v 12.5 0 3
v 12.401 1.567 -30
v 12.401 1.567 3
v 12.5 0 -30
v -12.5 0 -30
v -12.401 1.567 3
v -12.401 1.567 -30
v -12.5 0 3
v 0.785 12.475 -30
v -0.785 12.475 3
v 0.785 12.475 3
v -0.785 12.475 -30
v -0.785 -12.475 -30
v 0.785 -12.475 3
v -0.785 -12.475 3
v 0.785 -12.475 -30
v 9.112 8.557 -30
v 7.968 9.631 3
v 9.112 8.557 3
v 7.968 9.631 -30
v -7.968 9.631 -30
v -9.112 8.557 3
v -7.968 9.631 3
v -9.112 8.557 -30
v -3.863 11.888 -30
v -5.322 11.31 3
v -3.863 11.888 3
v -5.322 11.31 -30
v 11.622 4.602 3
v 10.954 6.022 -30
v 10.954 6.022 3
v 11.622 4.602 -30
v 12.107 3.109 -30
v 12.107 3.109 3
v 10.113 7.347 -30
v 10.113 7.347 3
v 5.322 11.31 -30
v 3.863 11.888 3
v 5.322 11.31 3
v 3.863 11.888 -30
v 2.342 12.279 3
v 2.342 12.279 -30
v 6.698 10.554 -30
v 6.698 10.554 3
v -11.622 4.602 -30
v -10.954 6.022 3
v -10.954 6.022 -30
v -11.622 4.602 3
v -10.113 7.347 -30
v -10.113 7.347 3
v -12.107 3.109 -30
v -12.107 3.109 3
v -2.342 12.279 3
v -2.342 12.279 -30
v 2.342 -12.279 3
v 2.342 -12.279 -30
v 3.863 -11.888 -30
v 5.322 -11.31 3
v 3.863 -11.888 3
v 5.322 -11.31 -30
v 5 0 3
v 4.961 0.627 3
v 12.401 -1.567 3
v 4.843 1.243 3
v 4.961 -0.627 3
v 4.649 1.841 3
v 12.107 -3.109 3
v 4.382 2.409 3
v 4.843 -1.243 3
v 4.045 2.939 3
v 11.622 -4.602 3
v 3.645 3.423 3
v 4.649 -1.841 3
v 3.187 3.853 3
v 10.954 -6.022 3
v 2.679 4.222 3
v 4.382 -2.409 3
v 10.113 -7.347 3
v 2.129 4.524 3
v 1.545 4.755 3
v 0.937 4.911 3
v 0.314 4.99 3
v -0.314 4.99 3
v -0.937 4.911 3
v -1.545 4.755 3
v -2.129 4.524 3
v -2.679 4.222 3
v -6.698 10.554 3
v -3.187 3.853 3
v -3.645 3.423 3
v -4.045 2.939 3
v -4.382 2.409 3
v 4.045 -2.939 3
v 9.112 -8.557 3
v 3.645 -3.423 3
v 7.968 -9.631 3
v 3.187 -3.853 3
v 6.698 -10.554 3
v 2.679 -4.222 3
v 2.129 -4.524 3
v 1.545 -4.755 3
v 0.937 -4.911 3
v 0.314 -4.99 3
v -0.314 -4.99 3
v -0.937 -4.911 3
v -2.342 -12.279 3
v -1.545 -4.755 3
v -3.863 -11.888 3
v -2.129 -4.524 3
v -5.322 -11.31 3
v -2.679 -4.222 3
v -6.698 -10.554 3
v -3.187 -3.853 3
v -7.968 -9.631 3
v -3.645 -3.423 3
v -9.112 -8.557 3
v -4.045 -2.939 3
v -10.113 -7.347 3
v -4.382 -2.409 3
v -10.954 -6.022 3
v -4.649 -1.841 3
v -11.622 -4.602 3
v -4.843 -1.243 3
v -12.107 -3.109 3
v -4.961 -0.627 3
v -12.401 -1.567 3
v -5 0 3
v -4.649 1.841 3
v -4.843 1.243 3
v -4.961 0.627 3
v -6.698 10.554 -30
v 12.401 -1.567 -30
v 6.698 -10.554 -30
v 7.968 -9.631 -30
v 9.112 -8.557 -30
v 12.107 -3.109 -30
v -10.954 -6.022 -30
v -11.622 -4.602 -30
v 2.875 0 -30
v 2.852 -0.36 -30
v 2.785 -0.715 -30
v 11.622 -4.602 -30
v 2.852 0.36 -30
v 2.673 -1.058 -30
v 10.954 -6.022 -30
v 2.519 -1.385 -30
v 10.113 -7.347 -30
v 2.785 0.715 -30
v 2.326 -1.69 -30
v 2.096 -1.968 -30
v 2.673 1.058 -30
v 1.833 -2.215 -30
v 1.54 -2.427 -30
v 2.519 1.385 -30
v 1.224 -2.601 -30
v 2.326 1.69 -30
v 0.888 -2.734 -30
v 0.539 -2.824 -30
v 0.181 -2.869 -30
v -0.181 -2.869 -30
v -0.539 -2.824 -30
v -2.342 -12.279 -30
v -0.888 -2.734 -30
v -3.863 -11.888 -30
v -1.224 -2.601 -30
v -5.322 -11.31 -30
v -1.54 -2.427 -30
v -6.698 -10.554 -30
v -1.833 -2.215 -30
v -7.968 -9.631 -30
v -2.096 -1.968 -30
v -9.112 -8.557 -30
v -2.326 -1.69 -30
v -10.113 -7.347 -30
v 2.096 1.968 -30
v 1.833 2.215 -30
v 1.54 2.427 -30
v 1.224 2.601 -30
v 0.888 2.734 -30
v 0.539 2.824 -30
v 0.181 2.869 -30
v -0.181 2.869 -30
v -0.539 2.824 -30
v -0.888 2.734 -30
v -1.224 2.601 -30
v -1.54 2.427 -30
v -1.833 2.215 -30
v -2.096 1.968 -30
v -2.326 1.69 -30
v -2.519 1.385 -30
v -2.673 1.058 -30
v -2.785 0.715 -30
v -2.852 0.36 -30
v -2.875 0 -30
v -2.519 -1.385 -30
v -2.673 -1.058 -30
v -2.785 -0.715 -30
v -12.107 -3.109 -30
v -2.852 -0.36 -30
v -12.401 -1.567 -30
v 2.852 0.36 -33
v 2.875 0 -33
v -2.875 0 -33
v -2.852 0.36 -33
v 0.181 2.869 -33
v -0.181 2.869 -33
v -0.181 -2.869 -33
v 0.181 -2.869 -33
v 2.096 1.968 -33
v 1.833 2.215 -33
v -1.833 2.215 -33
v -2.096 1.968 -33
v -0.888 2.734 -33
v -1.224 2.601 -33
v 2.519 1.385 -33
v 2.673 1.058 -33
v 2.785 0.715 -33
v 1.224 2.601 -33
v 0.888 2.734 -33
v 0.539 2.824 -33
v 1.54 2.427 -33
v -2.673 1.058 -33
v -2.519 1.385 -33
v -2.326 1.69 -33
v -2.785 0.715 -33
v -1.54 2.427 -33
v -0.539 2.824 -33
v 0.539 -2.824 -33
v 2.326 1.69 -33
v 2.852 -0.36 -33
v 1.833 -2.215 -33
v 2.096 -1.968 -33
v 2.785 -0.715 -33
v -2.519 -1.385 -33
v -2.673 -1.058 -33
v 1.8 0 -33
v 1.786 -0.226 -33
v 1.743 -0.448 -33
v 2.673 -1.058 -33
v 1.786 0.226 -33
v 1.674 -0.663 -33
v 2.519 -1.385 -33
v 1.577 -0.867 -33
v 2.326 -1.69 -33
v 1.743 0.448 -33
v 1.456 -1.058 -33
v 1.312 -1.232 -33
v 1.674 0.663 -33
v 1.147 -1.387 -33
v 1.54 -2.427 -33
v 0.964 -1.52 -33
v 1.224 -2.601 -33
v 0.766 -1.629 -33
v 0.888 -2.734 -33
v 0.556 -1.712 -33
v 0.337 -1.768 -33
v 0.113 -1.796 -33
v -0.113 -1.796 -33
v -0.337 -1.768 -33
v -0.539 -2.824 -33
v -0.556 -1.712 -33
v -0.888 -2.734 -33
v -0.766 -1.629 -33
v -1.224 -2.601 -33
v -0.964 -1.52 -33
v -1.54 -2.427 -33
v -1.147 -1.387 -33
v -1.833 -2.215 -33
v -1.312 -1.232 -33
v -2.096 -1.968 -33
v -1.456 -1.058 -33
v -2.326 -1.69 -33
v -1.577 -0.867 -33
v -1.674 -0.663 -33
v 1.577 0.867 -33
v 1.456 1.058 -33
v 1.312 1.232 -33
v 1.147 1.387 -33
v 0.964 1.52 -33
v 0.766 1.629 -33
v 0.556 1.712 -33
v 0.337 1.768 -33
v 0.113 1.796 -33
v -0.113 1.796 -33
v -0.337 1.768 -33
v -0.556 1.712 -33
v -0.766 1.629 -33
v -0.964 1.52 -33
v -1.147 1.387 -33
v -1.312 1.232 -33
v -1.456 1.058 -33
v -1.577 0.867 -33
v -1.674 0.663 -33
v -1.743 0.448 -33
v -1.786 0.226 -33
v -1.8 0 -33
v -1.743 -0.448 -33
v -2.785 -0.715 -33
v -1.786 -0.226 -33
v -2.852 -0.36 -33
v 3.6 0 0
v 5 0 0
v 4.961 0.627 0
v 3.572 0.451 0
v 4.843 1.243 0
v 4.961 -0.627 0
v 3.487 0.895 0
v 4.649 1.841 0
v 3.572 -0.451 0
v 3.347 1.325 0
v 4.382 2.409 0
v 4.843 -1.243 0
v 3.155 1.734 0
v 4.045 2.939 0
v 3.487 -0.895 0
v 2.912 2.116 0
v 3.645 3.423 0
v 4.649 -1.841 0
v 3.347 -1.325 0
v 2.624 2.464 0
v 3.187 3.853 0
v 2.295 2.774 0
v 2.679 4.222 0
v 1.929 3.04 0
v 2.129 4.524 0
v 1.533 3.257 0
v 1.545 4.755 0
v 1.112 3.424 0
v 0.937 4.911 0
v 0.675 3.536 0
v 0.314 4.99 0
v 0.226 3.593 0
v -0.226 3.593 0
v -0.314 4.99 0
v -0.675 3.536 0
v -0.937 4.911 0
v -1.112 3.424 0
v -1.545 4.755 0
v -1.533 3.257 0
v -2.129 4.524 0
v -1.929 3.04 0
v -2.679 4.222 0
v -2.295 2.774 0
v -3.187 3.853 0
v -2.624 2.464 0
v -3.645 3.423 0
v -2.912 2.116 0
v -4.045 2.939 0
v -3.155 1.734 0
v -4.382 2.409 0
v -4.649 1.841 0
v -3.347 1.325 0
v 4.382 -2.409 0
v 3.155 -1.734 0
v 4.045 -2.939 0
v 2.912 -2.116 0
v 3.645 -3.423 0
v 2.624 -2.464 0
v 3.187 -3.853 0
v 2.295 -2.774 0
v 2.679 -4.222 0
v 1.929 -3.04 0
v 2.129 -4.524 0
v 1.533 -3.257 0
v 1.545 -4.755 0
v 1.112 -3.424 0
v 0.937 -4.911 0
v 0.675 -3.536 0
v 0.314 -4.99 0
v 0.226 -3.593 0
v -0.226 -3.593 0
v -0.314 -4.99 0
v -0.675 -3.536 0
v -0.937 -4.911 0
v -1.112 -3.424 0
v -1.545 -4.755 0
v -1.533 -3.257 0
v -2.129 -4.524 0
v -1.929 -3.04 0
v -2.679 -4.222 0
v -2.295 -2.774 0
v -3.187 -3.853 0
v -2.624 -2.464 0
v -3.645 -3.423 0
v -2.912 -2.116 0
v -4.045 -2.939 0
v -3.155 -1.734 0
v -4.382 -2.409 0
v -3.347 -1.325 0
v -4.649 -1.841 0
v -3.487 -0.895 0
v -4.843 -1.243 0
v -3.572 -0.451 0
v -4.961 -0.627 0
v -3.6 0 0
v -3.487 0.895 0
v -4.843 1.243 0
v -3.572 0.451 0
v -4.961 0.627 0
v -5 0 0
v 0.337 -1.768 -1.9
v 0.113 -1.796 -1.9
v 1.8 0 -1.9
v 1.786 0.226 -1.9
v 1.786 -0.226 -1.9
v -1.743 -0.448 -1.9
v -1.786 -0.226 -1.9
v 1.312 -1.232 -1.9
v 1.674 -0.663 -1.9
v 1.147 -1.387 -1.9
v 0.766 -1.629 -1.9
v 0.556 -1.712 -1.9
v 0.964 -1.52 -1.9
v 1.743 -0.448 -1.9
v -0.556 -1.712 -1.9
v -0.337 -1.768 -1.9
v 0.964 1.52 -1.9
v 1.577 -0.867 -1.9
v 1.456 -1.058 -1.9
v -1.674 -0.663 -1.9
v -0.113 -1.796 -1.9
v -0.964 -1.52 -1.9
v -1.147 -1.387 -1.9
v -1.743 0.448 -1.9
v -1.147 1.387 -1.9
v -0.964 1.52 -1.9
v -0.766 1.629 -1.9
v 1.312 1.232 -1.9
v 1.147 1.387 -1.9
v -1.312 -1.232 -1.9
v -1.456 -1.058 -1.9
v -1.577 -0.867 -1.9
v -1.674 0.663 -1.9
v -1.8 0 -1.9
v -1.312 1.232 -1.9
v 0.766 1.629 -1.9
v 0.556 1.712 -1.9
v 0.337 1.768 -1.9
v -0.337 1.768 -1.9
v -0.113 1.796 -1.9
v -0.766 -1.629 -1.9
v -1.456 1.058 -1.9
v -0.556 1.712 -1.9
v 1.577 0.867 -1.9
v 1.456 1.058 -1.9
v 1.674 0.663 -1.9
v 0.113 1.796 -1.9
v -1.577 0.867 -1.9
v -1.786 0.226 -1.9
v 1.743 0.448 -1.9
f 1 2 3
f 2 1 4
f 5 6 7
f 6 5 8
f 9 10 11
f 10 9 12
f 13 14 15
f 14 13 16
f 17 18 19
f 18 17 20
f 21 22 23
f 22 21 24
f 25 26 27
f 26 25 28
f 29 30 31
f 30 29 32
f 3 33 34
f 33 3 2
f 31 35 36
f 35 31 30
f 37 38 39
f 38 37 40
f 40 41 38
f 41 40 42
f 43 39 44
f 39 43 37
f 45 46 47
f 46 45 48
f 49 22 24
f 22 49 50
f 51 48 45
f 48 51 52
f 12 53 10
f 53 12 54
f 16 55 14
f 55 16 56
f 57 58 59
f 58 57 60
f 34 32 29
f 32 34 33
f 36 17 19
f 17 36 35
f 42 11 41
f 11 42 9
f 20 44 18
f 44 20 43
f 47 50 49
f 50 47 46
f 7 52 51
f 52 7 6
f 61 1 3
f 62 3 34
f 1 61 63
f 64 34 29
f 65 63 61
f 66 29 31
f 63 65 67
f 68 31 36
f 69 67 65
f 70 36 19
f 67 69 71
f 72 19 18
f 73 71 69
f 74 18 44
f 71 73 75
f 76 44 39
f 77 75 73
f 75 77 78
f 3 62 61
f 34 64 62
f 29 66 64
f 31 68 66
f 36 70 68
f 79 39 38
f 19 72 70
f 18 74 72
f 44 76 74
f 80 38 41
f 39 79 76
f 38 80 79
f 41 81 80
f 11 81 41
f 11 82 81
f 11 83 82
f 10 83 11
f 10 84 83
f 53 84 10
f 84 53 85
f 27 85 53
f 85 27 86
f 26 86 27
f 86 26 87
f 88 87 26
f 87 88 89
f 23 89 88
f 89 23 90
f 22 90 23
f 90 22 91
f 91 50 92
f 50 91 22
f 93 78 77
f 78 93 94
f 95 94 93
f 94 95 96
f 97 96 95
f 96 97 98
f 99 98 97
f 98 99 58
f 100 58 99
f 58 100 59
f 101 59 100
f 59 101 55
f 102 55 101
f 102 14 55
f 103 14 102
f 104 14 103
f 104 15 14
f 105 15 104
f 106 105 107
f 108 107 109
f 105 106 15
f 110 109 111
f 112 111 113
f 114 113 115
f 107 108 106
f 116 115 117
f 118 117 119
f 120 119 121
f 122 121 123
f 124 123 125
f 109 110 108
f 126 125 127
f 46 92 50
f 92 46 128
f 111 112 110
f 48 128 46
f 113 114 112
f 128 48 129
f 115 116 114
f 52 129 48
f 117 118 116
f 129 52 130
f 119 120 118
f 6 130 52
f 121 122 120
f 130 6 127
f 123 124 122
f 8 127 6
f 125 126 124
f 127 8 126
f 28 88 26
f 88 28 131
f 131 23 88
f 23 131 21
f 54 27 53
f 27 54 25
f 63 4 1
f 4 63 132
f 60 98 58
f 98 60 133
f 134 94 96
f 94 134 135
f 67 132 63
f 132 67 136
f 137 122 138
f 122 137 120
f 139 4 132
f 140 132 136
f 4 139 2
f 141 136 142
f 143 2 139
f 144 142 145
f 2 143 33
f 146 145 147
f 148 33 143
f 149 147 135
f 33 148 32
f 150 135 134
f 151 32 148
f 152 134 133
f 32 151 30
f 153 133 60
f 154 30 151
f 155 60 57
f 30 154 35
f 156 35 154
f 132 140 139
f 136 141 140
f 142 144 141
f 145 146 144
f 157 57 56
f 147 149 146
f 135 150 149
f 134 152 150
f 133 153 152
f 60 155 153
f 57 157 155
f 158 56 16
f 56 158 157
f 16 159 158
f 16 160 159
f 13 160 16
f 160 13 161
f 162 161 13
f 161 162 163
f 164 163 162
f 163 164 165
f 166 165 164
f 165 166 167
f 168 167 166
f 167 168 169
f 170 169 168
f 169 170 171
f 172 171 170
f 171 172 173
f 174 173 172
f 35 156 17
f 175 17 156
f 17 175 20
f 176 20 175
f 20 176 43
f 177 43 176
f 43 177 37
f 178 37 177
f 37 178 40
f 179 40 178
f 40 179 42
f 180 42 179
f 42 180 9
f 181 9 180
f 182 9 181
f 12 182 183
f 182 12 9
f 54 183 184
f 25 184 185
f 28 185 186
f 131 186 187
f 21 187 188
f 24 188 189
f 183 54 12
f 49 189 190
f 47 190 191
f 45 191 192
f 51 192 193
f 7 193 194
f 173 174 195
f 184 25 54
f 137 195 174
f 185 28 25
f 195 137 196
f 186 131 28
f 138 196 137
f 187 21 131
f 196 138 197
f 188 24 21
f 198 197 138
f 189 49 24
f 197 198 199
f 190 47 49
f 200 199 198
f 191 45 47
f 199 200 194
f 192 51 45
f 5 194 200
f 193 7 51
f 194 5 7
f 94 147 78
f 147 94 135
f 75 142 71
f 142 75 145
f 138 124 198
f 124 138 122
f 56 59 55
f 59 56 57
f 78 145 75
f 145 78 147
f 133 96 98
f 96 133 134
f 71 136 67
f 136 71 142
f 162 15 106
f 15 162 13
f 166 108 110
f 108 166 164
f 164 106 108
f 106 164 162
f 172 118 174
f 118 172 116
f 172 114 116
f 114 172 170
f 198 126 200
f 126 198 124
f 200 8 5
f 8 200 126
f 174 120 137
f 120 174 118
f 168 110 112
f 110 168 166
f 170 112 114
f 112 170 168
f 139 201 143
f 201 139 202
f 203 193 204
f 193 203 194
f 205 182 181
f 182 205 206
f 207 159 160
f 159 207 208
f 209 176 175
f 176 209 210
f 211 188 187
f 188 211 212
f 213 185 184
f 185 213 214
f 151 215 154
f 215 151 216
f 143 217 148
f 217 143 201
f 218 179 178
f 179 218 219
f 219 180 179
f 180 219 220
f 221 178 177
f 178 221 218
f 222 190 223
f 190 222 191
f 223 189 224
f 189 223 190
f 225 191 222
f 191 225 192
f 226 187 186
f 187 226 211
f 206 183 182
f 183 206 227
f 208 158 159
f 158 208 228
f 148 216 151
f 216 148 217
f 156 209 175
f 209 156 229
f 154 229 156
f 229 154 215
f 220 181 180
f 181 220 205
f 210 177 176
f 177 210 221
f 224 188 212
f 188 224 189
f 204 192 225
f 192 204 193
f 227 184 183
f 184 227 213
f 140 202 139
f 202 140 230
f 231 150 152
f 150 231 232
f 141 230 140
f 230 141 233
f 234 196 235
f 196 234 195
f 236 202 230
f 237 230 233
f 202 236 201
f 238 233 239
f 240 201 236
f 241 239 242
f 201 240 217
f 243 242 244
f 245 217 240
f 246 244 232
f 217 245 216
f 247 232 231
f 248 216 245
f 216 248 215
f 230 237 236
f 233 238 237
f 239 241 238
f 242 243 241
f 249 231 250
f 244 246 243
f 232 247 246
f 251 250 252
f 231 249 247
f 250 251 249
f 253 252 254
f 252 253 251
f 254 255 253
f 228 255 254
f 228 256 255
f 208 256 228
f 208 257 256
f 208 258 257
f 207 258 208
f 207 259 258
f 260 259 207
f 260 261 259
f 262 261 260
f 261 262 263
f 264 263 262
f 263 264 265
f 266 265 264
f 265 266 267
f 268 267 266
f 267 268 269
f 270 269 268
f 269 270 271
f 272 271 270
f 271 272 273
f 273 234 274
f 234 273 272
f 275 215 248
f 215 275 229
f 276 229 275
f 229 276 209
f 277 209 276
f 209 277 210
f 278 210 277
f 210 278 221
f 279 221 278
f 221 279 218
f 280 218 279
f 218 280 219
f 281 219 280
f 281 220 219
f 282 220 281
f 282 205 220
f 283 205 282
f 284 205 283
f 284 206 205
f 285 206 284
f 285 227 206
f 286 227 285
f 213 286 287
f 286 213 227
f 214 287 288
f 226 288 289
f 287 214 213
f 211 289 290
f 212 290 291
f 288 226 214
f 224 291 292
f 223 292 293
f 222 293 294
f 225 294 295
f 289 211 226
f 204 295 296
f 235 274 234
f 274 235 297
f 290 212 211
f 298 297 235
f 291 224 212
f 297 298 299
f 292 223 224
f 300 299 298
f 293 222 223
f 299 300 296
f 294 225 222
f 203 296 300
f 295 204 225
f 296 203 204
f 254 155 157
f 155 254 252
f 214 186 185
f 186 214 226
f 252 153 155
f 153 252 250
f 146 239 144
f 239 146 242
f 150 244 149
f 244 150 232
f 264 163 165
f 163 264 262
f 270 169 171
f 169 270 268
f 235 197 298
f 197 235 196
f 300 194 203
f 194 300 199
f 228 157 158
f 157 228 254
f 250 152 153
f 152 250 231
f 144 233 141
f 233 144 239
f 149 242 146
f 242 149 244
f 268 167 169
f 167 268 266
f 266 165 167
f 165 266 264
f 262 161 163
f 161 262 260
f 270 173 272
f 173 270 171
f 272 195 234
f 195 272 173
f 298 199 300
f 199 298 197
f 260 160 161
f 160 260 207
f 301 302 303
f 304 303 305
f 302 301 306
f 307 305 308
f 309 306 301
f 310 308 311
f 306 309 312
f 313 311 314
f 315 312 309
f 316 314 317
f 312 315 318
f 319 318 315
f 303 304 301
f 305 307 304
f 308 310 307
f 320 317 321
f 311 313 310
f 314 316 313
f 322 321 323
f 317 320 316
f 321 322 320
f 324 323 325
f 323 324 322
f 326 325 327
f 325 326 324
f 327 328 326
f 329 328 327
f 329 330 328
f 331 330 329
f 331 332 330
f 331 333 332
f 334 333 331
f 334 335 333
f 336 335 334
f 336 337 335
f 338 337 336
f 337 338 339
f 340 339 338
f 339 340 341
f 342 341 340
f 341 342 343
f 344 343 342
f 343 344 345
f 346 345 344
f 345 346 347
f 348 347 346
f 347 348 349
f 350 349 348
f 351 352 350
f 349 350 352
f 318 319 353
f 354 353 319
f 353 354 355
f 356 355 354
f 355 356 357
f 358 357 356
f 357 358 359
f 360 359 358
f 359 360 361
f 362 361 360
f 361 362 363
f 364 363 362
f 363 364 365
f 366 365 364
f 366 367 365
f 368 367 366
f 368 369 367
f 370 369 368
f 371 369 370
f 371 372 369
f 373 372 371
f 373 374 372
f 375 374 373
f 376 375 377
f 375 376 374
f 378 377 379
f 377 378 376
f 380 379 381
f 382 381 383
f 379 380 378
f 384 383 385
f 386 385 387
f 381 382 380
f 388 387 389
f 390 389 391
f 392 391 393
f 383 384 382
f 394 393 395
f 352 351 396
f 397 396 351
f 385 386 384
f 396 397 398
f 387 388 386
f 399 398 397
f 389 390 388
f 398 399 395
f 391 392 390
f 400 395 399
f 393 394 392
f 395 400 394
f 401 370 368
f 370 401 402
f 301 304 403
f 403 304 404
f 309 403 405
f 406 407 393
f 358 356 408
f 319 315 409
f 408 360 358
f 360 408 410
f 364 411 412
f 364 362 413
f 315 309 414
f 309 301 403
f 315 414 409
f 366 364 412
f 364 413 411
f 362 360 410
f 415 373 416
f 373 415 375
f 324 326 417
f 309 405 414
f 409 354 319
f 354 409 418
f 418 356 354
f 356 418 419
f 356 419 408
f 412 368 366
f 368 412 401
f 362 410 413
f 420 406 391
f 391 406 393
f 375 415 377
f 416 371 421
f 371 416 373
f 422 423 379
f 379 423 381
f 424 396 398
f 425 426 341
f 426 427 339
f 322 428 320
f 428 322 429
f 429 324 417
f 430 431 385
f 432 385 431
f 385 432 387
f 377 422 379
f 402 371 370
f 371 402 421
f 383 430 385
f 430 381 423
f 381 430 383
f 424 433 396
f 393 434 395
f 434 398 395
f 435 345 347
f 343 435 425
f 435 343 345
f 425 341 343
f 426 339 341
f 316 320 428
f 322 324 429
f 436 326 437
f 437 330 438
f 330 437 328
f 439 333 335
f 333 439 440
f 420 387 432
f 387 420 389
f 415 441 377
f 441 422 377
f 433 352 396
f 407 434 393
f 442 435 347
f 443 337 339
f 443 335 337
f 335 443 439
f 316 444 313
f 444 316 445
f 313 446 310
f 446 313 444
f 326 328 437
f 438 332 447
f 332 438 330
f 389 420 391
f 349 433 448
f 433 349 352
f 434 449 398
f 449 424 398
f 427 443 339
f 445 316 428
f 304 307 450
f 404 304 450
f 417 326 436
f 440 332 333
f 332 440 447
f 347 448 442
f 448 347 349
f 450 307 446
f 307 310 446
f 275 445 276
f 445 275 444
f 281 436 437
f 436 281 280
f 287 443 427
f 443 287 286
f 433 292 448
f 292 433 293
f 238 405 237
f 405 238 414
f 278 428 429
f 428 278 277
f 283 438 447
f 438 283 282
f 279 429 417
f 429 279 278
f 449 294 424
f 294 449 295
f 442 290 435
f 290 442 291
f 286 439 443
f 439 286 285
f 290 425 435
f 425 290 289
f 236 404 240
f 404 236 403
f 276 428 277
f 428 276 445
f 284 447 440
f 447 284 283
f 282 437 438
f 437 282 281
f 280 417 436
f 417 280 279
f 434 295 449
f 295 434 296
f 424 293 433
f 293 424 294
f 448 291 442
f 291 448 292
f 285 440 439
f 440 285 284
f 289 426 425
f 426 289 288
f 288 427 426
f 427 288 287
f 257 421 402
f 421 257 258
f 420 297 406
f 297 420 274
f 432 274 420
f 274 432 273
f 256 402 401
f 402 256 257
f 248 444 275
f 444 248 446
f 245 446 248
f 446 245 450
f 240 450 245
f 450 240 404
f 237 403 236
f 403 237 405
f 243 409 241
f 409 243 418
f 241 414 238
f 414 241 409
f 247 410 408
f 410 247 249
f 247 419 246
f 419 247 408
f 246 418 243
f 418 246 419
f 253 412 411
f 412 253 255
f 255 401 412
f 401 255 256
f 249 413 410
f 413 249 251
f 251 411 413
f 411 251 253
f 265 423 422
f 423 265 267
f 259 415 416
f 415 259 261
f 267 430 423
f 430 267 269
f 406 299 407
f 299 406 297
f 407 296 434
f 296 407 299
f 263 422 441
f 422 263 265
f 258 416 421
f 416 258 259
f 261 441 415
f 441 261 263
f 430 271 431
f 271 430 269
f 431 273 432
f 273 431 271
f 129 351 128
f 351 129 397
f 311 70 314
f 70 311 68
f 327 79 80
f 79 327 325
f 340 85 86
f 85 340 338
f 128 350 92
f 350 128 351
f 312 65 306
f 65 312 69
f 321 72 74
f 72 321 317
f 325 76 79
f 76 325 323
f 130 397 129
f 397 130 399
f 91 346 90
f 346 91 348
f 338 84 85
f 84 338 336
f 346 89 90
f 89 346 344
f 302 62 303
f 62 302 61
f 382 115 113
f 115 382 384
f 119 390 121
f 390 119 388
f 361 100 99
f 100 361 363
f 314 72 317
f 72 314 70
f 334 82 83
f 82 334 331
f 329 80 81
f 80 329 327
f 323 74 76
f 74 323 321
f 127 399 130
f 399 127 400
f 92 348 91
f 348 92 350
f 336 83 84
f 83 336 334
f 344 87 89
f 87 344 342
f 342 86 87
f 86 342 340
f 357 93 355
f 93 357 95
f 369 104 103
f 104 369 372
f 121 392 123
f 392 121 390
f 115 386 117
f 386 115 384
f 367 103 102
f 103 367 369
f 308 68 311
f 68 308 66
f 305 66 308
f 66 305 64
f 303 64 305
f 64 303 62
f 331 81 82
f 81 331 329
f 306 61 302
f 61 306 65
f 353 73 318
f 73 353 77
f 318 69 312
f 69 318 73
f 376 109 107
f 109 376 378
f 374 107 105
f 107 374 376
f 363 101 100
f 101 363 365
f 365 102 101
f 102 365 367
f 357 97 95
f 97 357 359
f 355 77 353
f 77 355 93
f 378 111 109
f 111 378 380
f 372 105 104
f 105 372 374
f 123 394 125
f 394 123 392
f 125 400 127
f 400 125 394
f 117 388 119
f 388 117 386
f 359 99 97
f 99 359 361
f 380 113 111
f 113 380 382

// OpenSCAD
$fn = 50;

difference() {
	union() {
		translate(v = [0, 0, -30.0]) {
			cylinder(h = 33, r = 12.5);
		}
		#translate(v = [0, 0, -33.0]) {
			cylinder(h = 33, r = 2.875);
		}
	}
	union() {
		translate(v = [0, 0, 0]) {
			rotate(a = [0, 0, 0]) {
				difference() {
					union() {
						translate(v = [0, 0, -33.0]) {
							cylinder(h = 33, r = 1.5);
						}
						translate(v = [0, 0, -1.9]) {
							cylinder(h = 1.9, r1 = 1.8, r2 = 3.6);
						}
						translate(v = [0, 0, -33.0]) {
							cylinder(h = 33, r = 1.8);
						}
						translate(v = [0, 0, -33.0]) {
							cylinder(h = 33, r = 1.5);
						}
					}
					union();
				}
			}
		}
		#cylinder(h = 3, r = 5.0);
	}
}
